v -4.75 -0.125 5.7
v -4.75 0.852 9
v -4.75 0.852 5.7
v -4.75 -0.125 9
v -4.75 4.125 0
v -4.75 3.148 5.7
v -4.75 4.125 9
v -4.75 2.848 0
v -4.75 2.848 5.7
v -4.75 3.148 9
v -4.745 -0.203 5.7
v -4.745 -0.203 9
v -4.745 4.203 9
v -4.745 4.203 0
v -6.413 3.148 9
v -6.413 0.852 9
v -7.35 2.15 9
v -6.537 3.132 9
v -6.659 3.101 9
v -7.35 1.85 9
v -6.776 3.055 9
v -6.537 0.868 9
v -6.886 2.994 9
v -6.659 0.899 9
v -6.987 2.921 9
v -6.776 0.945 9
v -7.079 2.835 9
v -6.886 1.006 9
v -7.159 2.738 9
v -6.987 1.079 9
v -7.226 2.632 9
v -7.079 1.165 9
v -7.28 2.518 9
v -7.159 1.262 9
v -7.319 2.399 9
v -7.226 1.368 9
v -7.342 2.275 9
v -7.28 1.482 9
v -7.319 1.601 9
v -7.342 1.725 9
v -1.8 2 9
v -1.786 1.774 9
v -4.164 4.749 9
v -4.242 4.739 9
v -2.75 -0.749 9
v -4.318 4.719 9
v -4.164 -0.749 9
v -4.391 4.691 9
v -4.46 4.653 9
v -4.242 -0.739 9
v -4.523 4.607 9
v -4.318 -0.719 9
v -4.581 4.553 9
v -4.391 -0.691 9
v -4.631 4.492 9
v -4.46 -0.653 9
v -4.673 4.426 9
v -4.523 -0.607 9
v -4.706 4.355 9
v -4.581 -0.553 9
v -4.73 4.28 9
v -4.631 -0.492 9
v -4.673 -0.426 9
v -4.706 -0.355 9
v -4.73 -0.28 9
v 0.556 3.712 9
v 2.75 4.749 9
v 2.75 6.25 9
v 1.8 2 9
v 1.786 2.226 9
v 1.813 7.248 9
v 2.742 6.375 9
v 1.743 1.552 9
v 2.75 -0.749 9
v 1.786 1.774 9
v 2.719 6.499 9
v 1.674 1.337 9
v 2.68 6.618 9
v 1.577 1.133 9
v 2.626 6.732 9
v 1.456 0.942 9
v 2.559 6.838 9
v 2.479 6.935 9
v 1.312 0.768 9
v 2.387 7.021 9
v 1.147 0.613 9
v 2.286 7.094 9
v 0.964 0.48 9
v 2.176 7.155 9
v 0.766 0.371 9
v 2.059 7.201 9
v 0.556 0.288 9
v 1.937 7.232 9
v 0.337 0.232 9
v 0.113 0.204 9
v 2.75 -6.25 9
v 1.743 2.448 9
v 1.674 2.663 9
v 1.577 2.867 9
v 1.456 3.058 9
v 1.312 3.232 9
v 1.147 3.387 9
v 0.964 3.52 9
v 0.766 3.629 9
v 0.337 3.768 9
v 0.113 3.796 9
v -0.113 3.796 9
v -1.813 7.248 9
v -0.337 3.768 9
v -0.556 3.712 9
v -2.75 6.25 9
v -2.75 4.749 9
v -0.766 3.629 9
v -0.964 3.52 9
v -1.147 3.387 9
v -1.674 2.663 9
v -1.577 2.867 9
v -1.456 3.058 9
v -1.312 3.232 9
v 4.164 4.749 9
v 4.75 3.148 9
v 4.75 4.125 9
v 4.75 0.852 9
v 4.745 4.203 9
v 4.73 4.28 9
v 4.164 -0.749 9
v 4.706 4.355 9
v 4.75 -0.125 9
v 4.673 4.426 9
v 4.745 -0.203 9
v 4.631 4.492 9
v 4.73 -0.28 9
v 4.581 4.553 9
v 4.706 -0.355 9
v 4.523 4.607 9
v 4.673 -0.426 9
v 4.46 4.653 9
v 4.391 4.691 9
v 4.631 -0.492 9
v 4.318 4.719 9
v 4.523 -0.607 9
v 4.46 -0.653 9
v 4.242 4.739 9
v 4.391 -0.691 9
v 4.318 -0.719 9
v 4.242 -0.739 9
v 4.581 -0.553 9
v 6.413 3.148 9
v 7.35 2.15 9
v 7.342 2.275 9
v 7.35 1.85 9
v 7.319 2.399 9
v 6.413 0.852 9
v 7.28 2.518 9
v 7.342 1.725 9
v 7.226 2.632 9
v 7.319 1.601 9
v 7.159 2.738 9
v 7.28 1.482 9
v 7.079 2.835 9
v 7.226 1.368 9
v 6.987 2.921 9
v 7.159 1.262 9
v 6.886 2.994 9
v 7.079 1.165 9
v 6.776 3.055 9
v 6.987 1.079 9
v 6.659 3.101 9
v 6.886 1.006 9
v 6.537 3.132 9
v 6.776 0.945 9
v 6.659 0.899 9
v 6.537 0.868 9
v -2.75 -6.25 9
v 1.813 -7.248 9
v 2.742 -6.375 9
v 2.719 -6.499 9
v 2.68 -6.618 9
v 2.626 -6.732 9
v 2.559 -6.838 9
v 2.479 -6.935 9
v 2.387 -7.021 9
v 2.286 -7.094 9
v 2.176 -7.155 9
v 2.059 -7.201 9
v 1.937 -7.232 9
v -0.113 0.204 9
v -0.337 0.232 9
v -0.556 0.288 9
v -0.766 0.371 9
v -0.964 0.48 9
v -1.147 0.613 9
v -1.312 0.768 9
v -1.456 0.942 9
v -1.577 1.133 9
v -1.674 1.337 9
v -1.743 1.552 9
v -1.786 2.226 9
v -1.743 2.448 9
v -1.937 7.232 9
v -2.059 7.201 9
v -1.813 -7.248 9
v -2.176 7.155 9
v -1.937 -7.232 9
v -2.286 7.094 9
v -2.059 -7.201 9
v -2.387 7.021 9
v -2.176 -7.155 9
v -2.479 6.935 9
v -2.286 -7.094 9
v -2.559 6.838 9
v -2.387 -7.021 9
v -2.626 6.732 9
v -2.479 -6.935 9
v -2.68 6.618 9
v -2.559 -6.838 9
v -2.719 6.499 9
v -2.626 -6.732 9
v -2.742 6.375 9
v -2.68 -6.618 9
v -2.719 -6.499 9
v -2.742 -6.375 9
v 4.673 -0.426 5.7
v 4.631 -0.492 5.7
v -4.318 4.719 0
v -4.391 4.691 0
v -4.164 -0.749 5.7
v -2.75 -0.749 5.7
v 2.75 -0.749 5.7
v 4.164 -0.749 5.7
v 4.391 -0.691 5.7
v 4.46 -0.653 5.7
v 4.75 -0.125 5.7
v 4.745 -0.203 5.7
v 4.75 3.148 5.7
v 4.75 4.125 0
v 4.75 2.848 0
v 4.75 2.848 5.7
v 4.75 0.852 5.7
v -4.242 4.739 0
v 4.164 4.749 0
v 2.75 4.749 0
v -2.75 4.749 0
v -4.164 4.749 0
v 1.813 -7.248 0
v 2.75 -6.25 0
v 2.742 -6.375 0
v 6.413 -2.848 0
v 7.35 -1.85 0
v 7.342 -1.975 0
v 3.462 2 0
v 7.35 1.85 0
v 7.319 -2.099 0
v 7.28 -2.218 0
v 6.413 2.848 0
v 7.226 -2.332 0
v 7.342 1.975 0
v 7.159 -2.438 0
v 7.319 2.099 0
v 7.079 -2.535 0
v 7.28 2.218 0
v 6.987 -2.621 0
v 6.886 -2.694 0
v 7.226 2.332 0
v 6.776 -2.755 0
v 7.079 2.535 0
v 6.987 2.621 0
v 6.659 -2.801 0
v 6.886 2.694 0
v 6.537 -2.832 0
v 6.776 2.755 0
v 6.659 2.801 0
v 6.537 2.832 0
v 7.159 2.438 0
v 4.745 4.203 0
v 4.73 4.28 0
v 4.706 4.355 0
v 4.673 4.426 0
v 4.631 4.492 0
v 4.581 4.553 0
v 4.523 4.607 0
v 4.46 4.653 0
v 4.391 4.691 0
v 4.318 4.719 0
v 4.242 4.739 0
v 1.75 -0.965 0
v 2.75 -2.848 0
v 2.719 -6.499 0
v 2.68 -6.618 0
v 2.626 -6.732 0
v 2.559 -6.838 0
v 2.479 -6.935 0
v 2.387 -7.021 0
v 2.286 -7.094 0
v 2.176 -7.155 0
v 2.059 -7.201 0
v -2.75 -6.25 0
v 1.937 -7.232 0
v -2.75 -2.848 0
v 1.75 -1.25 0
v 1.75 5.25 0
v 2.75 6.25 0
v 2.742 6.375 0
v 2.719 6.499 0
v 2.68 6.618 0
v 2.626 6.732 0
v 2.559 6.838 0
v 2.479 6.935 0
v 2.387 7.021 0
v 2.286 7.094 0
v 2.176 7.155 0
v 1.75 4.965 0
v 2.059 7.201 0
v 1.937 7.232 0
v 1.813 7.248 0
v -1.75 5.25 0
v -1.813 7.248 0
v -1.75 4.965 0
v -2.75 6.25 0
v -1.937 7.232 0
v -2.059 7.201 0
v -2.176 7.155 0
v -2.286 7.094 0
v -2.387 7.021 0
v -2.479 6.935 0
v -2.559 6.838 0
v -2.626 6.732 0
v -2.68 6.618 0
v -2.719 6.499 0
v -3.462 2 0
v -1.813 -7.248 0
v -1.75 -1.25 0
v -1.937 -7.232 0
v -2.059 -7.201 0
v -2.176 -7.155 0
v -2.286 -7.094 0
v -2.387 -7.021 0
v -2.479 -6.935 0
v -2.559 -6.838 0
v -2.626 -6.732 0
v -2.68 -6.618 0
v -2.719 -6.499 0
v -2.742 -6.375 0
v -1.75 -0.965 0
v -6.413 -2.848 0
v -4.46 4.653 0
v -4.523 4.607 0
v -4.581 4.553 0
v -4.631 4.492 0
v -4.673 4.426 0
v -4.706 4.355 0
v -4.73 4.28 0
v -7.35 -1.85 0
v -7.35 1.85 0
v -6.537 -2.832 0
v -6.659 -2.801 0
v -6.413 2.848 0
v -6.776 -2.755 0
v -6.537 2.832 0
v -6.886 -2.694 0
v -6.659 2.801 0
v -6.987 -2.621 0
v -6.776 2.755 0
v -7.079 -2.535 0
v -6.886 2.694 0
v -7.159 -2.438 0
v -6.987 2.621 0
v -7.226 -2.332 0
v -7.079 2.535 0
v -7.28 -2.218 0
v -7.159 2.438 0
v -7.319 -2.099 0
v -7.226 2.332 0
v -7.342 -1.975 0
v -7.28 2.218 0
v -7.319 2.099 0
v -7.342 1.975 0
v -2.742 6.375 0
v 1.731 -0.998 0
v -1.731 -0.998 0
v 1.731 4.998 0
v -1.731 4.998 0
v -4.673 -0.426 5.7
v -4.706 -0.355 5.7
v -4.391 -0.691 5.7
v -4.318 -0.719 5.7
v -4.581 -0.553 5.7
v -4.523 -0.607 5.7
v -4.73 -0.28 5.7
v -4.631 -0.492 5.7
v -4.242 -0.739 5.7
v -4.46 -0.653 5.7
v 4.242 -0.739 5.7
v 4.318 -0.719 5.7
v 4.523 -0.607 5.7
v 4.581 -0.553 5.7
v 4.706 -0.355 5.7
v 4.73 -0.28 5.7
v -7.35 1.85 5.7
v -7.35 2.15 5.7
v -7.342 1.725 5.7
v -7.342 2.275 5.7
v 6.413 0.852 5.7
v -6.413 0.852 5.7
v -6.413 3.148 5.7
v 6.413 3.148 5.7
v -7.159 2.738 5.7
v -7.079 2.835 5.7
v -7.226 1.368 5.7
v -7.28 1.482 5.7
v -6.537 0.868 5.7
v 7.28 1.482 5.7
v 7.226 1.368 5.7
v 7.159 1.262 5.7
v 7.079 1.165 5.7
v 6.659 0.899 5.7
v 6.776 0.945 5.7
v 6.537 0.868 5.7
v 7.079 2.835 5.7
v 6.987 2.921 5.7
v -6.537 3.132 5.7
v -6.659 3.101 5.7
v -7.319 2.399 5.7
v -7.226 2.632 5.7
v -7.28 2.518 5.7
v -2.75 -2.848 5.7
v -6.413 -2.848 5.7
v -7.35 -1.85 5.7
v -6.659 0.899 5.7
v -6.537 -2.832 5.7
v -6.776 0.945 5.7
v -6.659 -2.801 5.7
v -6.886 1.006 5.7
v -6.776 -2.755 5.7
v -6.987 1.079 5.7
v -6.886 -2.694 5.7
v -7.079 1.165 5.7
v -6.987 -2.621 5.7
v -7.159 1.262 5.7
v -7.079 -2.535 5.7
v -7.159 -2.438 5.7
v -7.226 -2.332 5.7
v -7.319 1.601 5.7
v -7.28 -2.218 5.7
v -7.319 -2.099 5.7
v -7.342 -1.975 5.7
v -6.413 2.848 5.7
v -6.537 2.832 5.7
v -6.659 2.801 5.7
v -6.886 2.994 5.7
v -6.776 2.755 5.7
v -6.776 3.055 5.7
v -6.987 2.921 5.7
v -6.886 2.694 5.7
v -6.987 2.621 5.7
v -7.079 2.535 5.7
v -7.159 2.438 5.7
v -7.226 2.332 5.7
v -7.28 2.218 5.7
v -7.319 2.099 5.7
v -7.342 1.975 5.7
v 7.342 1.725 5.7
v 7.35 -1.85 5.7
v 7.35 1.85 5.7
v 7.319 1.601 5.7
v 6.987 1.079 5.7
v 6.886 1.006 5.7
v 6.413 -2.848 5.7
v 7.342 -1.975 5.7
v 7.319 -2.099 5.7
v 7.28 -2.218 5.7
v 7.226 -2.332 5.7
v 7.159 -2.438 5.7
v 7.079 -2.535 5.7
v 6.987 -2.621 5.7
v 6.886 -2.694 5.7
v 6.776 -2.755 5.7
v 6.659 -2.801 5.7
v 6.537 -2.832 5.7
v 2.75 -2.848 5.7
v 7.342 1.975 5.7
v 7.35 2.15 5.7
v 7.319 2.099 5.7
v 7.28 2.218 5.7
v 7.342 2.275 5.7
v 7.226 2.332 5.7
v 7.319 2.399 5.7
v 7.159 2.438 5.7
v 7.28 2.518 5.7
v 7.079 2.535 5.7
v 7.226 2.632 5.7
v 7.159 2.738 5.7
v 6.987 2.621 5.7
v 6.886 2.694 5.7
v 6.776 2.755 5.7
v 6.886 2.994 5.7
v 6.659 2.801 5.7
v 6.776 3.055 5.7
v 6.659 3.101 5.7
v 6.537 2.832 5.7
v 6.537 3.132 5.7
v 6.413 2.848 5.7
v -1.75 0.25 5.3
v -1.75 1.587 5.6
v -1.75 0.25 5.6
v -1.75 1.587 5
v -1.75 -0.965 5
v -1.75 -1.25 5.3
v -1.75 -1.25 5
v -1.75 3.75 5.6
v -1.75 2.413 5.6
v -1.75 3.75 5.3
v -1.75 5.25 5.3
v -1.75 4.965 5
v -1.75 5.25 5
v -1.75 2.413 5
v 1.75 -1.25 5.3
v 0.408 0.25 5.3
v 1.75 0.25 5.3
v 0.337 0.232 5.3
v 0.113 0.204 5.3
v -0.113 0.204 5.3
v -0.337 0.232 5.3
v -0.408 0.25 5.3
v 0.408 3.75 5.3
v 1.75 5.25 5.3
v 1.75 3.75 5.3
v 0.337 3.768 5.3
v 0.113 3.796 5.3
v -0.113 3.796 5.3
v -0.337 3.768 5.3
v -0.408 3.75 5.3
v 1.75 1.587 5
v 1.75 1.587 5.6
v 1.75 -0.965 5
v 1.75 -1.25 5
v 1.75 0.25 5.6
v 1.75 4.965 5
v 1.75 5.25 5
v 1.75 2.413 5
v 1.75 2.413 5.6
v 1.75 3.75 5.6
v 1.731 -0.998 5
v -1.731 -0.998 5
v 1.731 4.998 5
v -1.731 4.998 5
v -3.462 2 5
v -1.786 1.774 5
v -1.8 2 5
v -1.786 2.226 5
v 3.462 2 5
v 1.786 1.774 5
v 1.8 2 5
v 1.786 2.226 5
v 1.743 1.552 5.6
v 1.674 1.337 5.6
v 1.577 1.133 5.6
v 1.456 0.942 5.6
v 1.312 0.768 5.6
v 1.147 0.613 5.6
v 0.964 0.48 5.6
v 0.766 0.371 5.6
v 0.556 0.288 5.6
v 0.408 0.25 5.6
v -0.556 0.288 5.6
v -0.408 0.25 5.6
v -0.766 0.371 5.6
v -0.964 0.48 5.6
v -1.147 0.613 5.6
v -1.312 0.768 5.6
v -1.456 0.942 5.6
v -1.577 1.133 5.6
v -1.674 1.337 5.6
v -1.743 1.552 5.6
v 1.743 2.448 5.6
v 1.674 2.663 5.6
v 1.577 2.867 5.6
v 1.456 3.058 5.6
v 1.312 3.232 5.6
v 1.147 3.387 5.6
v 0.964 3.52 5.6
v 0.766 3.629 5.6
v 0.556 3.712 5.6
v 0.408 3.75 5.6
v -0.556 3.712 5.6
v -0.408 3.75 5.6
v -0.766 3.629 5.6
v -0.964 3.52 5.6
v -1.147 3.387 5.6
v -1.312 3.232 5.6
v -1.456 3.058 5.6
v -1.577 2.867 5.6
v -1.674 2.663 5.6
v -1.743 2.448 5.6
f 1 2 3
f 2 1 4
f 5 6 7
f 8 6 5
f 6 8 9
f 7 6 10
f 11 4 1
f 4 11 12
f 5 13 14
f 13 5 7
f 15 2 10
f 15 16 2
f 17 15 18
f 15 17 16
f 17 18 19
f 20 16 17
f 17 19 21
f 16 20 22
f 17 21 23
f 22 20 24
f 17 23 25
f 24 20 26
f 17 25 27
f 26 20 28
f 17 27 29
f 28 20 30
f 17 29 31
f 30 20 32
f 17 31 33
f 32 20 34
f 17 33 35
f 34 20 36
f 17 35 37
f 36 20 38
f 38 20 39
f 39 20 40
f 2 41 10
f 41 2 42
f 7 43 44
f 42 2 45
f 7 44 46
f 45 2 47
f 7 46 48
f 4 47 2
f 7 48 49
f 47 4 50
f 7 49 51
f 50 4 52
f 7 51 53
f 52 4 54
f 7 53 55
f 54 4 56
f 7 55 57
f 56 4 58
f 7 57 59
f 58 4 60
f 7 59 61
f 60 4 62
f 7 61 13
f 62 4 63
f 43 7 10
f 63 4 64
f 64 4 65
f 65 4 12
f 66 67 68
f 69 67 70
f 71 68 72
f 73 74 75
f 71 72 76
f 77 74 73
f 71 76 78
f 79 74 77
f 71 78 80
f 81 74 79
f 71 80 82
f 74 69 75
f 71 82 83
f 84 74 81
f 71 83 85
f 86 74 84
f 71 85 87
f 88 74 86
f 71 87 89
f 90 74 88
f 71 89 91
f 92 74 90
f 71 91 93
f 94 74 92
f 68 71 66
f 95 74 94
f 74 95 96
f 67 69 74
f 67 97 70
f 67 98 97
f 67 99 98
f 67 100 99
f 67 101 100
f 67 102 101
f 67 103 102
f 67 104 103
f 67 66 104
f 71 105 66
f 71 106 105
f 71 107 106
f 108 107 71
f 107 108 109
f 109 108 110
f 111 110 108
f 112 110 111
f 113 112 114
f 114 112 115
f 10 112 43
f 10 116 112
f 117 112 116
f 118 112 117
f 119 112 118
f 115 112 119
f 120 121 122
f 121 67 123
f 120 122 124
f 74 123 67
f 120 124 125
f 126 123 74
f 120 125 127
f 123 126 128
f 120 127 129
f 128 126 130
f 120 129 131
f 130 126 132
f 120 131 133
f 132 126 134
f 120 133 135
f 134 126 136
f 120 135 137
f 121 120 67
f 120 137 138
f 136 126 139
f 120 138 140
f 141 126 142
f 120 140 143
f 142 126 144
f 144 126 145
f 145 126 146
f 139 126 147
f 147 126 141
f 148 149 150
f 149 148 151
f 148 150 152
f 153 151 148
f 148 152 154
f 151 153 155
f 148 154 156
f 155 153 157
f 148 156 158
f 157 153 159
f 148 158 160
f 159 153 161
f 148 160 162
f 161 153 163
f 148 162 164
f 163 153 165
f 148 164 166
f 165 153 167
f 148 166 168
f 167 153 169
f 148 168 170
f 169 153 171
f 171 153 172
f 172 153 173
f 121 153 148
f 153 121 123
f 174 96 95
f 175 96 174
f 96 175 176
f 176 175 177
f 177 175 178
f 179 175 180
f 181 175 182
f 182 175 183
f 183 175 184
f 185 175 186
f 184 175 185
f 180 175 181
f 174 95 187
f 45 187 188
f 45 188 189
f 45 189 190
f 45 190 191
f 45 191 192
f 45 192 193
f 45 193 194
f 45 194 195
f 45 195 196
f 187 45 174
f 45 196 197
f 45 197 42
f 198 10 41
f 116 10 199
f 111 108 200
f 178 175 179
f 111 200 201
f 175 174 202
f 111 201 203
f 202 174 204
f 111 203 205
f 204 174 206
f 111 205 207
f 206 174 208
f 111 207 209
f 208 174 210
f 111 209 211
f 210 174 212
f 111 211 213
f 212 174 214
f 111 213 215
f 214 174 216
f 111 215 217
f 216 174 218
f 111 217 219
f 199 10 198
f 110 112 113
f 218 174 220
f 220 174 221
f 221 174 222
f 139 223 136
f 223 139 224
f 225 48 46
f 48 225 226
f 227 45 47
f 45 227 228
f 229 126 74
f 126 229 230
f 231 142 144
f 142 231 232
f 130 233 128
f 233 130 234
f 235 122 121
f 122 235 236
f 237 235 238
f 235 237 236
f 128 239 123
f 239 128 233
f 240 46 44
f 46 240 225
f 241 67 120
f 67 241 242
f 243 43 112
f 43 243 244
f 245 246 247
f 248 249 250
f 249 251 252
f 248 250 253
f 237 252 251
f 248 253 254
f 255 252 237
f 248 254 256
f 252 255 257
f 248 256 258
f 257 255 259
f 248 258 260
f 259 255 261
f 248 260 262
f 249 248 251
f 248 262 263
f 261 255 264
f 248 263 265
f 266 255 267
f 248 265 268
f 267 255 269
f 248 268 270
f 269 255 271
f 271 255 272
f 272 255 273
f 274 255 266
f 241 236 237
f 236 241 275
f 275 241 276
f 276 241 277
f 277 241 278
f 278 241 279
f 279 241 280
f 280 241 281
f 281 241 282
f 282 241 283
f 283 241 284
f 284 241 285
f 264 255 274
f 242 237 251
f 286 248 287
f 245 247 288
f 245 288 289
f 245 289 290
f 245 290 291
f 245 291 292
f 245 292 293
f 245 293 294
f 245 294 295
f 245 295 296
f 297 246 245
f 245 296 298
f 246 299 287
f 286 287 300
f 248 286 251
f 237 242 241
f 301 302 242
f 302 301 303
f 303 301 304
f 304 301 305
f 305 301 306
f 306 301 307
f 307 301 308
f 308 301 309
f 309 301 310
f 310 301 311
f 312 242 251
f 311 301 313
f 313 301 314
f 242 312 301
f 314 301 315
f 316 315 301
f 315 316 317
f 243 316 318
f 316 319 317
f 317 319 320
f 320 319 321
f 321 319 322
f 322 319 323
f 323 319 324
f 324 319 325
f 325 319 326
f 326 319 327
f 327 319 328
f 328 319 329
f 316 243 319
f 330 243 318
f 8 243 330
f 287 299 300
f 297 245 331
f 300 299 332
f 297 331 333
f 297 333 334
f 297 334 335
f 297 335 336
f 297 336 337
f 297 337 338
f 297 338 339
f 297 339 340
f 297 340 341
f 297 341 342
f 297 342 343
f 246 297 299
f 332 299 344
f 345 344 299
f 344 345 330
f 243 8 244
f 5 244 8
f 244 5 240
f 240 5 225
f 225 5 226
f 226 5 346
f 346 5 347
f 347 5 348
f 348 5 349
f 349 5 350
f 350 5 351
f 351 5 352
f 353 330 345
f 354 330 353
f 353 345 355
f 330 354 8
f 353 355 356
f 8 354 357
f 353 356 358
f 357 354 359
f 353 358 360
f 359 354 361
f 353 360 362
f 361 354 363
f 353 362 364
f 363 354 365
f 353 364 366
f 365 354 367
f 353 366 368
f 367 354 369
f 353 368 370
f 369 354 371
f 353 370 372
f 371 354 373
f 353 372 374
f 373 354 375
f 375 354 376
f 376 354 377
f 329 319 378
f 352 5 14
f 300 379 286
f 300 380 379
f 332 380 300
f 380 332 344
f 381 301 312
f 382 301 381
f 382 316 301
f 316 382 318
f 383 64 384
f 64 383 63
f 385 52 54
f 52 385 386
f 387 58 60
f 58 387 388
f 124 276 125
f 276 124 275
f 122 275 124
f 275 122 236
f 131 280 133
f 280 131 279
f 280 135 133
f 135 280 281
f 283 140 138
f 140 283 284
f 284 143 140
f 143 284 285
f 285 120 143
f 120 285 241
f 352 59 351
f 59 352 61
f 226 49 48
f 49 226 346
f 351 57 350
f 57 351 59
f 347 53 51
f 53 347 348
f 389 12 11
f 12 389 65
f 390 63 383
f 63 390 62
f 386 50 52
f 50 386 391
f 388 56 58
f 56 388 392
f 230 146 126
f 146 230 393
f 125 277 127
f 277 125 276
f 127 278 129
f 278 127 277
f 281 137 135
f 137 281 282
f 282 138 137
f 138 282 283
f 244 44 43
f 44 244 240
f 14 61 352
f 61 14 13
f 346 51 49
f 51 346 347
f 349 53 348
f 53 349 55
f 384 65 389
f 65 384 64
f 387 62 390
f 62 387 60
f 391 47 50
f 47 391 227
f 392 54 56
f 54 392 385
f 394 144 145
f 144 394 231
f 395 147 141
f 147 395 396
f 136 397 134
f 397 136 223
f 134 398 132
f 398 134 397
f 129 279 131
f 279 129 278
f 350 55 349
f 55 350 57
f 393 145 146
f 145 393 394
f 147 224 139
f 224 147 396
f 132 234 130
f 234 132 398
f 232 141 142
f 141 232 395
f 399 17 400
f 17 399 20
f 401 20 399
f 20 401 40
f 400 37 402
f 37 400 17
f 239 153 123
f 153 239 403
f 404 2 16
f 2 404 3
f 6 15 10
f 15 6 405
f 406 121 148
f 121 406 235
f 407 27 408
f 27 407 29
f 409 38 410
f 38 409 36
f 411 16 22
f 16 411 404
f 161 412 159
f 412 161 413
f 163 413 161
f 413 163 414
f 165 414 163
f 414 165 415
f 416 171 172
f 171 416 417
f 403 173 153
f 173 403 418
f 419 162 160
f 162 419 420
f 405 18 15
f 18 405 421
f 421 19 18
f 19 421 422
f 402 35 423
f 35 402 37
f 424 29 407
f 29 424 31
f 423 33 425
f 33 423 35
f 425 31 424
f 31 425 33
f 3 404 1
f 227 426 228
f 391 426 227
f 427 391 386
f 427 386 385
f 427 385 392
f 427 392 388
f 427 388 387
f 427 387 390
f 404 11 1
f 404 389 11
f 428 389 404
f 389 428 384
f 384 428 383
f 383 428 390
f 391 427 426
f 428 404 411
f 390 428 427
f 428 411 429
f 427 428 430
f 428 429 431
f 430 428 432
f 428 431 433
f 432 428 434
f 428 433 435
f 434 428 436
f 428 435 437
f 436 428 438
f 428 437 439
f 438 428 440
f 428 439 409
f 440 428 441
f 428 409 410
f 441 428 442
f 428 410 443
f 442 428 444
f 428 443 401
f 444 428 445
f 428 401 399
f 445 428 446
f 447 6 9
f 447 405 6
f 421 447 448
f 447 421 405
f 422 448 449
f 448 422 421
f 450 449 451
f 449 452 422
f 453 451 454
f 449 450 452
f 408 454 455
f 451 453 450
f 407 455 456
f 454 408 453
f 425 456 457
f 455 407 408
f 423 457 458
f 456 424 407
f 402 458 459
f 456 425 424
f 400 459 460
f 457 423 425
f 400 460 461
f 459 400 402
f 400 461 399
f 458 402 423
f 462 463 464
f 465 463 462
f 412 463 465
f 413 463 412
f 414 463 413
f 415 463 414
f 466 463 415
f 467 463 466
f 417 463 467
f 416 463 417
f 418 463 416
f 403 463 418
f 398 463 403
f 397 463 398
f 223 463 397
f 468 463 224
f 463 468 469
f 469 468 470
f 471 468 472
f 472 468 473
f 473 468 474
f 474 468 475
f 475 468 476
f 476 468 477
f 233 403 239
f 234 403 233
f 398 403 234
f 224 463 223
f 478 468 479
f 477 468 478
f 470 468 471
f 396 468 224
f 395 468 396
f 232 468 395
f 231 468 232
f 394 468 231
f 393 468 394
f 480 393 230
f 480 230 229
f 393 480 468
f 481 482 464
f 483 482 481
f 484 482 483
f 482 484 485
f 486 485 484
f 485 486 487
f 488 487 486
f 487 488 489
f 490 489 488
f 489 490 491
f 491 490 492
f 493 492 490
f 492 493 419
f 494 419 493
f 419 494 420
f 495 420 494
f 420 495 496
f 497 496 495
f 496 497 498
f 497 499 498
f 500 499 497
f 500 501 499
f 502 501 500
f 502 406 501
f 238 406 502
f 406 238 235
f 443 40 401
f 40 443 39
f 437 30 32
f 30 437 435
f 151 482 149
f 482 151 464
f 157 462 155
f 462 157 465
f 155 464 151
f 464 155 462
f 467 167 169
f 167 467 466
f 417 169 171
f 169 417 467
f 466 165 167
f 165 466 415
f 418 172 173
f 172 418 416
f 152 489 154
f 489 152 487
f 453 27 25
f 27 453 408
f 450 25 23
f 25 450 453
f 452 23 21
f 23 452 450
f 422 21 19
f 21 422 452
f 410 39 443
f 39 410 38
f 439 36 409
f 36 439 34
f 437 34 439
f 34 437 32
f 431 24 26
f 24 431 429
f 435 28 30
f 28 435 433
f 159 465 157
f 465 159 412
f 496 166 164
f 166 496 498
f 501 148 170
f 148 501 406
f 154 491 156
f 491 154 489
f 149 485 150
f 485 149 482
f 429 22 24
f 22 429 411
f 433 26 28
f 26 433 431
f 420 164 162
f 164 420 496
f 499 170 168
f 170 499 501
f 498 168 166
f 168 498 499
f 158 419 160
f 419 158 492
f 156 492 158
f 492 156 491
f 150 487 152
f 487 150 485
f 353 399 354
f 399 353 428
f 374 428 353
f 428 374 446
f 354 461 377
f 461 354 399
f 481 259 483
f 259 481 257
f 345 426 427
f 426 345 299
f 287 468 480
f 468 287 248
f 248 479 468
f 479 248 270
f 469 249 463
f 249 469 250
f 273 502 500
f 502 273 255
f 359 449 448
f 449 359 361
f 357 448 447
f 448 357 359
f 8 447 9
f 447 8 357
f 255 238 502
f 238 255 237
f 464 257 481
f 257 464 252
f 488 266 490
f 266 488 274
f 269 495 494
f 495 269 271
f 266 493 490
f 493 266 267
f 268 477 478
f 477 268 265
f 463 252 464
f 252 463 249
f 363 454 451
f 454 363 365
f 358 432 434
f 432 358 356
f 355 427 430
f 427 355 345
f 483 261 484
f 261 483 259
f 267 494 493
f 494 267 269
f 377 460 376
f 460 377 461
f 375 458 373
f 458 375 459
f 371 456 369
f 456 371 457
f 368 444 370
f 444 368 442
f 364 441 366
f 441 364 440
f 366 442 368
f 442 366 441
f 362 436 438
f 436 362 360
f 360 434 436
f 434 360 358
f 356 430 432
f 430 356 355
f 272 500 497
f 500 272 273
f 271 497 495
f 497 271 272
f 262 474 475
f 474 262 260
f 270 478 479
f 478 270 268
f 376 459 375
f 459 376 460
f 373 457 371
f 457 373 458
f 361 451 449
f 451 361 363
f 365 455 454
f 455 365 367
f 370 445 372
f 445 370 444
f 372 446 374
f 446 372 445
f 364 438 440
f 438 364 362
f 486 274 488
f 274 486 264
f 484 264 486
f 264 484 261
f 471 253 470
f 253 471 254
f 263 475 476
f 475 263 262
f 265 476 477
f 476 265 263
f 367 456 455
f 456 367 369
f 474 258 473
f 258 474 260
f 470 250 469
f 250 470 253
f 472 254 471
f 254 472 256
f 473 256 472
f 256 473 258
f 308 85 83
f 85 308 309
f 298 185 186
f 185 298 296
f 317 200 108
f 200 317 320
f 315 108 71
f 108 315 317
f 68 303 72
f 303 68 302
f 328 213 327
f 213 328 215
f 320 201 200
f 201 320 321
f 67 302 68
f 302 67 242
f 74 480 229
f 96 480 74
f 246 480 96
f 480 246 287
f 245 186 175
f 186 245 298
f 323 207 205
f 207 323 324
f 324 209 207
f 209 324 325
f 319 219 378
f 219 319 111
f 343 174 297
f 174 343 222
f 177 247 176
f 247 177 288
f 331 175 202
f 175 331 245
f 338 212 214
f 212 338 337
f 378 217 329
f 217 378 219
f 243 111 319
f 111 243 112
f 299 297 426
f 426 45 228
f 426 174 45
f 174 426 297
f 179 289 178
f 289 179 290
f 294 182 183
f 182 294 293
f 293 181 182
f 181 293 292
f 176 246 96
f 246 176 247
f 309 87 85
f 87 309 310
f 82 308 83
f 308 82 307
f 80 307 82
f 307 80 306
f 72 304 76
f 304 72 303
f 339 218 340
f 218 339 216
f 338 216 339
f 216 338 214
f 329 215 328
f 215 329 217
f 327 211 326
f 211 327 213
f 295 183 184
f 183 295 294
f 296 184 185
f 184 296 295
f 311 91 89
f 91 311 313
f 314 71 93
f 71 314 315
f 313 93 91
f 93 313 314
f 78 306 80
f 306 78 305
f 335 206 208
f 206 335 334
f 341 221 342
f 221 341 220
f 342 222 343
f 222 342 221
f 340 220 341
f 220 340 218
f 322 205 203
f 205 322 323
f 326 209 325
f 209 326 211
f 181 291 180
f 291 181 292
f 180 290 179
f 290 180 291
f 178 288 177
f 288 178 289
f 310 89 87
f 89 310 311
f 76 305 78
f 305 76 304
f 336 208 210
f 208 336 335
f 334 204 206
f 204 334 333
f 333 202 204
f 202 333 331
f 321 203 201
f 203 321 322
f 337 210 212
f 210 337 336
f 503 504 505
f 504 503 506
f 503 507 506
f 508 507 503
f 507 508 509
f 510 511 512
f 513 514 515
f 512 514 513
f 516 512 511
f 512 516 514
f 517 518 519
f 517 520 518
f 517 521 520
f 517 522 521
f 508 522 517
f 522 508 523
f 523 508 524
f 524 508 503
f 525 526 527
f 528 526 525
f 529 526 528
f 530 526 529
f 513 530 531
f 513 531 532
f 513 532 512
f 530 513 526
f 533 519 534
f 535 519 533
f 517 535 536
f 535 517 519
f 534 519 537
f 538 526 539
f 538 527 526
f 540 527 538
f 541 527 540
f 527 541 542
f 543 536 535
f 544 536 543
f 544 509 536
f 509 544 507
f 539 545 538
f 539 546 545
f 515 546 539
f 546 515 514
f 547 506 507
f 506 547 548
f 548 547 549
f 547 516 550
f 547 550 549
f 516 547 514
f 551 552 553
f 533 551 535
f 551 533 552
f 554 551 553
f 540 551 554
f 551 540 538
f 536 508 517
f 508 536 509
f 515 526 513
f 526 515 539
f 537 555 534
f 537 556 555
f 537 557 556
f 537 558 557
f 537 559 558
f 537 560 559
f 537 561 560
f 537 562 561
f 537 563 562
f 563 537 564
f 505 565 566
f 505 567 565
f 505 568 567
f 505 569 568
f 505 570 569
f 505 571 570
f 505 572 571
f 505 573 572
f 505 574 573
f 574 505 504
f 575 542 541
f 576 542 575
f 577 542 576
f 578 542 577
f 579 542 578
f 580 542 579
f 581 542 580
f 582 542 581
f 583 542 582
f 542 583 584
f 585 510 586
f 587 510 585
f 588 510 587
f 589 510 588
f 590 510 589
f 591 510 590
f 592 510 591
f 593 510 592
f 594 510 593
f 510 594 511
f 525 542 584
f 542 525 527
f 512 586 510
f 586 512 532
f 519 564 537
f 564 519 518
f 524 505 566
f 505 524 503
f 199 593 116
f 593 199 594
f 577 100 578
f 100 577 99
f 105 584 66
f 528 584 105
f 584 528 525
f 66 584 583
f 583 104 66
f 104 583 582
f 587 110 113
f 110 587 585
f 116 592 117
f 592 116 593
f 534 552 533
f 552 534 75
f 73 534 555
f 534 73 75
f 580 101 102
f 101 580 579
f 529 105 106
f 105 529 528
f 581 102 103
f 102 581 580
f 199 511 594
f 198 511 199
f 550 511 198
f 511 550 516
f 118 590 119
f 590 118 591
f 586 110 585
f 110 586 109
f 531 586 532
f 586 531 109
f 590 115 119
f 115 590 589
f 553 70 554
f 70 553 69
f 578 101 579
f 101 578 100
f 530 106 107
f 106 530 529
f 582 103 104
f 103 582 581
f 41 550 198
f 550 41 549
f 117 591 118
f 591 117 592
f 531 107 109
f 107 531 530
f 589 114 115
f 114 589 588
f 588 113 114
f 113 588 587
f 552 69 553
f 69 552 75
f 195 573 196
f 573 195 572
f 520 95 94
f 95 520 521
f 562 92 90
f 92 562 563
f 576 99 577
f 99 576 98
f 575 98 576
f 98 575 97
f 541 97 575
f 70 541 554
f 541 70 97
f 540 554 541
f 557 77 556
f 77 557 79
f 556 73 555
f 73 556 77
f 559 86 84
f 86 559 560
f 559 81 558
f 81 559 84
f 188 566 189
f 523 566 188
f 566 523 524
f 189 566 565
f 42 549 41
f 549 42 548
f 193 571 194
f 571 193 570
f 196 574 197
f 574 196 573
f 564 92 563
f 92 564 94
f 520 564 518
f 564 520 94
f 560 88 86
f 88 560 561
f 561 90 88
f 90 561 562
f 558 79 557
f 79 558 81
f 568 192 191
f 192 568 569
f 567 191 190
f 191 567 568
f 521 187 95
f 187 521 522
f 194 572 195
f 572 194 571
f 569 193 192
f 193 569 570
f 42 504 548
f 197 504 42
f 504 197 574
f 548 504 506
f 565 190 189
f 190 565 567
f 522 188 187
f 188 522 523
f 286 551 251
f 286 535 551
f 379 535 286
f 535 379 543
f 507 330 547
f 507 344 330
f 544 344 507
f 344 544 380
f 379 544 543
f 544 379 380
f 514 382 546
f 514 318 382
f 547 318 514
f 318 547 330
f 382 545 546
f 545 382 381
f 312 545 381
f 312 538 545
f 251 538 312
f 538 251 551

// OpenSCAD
$fn = 50;


difference() {
	union() {
		translate(v = [0, 2.0000000000, 0]) {
			hull() {
				translate(v = [-4.1250000000, 2.1250000000, 0]) {
					cylinder(h = 9, r = 0.6250000000);
				}
				translate(v = [4.1250000000, 2.1250000000, 0]) {
					cylinder(h = 9, r = 0.6250000000);
				}
				translate(v = [-4.1250000000, -2.1250000000, 0]) {
					cylinder(h = 9, r = 0.6250000000);
				}
				translate(v = [4.1250000000, -2.1250000000, 0]) {
					cylinder(h = 9, r = 0.6250000000);
				}
			}
		}
		translate(v = [0, 2.0000000000, 5.7000000000]) {
			hull() {
				translate(v = [-6.3500000000, -0.1500000000, 0]) {
					cylinder(h = 3.3000000000, r = 1);
				}
				translate(v = [6.3500000000, -0.1500000000, 0]) {
					cylinder(h = 3.3000000000, r = 1);
				}
				translate(v = [-6.3500000000, 0.1500000000, 0]) {
					cylinder(h = 3.3000000000, r = 1);
				}
				translate(v = [6.3500000000, 0.1500000000, 0]) {
					cylinder(h = 3.3000000000, r = 1);
				}
			}
		}
		hull() {
			translate(v = [-6.3500000000, 1.8500000000, 0]) {
				cylinder(h = 5.7000000000, r = 1);
			}
			translate(v = [6.3500000000, 1.8500000000, 0]) {
				cylinder(h = 5.7000000000, r = 1);
			}
			translate(v = [-6.3500000000, -1.8500000000, 0]) {
				cylinder(h = 5.7000000000, r = 1);
			}
			translate(v = [6.3500000000, -1.8500000000, 0]) {
				cylinder(h = 5.7000000000, r = 1);
			}
		}
		translate(v = [0, 0, 6]) {
			hull() {
				translate(v = [-1.7500000000, 6.2500000000, 0]) {
					cylinder(h = 3, r = 1);
				}
				translate(v = [1.7500000000, 6.2500000000, 0]) {
					cylinder(h = 3, r = 1);
				}
				translate(v = [-1.7500000000, -6.2500000000, 0]) {
					cylinder(h = 3, r = 1);
				}
				translate(v = [1.7500000000, -6.2500000000, 0]) {
					cylinder(h = 3, r = 1);
				}
			}
		}
		hull() {
			translate(v = [-1.7500000000, 6.2500000000, 0]) {
				cylinder(h = 6, r = 1);
			}
			translate(v = [1.7500000000, 6.2500000000, 0]) {
				cylinder(h = 6, r = 1);
			}
			translate(v = [-1.7500000000, -6.2500000000, 0]) {
				cylinder(h = 6, r = 1);
			}
			translate(v = [1.7500000000, -6.2500000000, 0]) {
				cylinder(h = 6, r = 1);
			}
		}
	}
	union() {
		translate(v = [0, 2.0000000000, 0]) {
			rotate(a = [0, 0, 0]) {
				difference() {
					union() {
						#translate(v = [-1.7500000000, -3.2500000000, -0.3000000000]) {
							cube(size = [3.5000000000, 6.5000000000, 0.3000000000]);
						}
						#translate(v = [-1.7500000000, -1.7500000000, -0.6000000000]) {
							cube(size = [3.5000000000, 3.5000000000, 0.3000000000]);
						}
						#translate(v = [-1.7500000000, -3.2500000000, 5]) {
							cube(size = [3.5000000000, 6.5000000000, 0.3000000000]);
						}
						#translate(v = [-1.7500000000, -1.7500000000, 5.3000000000]) {
							cube(size = [3.5000000000, 3.5000000000, 0.3000000000]);
						}
						#translate(v = [0, 0, -100.0000000000]) {
							cylinder(h = 200, r = 1.8000000000);
						}
						#linear_extrude(height = 5) {
							polygon(points = [[3.4620000000, 0.0000000000], [1.7310000000, 2.9981799479], [-1.7310000000, 2.9981799479], [-3.4620000000, 0.0000000000], [-1.7310000000, -2.9981799479], [1.7310000000, -2.9981799479]]);
						}
						#translate(v = [-1.7500000000, -3.2500000000, -0.3000000000]) {
							cube(size = [3.5000000000, 6.5000000000, 0.3000000000]);
						}
						#translate(v = [-1.7500000000, -1.7500000000, -0.6000000000]) {
							cube(size = [3.5000000000, 3.5000000000, 0.3000000000]);
						}
						#translate(v = [-1.7500000000, -3.2500000000, 5]) {
							cube(size = [3.5000000000, 6.5000000000, 0.3000000000]);
						}
						#translate(v = [-1.7500000000, -1.7500000000, 5.3000000000]) {
							cube(size = [3.5000000000, 3.5000000000, 0.3000000000]);
						}
						#translate(v = [0, 0, -100.0000000000]) {
							cylinder(h = 200, r = 1.8000000000);
						}
						#translate(v = [-1.7500000000, -3.2500000000, -0.3000000000]) {
							cube(size = [3.5000000000, 6.5000000000, 0.3000000000]);
						}
						#translate(v = [-1.7500000000, -1.7500000000, -0.6000000000]) {
							cube(size = [3.5000000000, 3.5000000000, 0.3000000000]);
						}
						#translate(v = [-1.7500000000, -3.2500000000, 5]) {
							cube(size = [3.5000000000, 6.5000000000, 0.3000000000]);
						}
						#translate(v = [-1.7500000000, -1.7500000000, 5.3000000000]) {
							cube(size = [3.5000000000, 3.5000000000, 0.3000000000]);
						}
						#translate(v = [0, 0, -100.0000000000]) {
							cylinder(h = 200, r = 1.8000000000);
						}
					}
					union();
				}
			}
		}
	}
}
